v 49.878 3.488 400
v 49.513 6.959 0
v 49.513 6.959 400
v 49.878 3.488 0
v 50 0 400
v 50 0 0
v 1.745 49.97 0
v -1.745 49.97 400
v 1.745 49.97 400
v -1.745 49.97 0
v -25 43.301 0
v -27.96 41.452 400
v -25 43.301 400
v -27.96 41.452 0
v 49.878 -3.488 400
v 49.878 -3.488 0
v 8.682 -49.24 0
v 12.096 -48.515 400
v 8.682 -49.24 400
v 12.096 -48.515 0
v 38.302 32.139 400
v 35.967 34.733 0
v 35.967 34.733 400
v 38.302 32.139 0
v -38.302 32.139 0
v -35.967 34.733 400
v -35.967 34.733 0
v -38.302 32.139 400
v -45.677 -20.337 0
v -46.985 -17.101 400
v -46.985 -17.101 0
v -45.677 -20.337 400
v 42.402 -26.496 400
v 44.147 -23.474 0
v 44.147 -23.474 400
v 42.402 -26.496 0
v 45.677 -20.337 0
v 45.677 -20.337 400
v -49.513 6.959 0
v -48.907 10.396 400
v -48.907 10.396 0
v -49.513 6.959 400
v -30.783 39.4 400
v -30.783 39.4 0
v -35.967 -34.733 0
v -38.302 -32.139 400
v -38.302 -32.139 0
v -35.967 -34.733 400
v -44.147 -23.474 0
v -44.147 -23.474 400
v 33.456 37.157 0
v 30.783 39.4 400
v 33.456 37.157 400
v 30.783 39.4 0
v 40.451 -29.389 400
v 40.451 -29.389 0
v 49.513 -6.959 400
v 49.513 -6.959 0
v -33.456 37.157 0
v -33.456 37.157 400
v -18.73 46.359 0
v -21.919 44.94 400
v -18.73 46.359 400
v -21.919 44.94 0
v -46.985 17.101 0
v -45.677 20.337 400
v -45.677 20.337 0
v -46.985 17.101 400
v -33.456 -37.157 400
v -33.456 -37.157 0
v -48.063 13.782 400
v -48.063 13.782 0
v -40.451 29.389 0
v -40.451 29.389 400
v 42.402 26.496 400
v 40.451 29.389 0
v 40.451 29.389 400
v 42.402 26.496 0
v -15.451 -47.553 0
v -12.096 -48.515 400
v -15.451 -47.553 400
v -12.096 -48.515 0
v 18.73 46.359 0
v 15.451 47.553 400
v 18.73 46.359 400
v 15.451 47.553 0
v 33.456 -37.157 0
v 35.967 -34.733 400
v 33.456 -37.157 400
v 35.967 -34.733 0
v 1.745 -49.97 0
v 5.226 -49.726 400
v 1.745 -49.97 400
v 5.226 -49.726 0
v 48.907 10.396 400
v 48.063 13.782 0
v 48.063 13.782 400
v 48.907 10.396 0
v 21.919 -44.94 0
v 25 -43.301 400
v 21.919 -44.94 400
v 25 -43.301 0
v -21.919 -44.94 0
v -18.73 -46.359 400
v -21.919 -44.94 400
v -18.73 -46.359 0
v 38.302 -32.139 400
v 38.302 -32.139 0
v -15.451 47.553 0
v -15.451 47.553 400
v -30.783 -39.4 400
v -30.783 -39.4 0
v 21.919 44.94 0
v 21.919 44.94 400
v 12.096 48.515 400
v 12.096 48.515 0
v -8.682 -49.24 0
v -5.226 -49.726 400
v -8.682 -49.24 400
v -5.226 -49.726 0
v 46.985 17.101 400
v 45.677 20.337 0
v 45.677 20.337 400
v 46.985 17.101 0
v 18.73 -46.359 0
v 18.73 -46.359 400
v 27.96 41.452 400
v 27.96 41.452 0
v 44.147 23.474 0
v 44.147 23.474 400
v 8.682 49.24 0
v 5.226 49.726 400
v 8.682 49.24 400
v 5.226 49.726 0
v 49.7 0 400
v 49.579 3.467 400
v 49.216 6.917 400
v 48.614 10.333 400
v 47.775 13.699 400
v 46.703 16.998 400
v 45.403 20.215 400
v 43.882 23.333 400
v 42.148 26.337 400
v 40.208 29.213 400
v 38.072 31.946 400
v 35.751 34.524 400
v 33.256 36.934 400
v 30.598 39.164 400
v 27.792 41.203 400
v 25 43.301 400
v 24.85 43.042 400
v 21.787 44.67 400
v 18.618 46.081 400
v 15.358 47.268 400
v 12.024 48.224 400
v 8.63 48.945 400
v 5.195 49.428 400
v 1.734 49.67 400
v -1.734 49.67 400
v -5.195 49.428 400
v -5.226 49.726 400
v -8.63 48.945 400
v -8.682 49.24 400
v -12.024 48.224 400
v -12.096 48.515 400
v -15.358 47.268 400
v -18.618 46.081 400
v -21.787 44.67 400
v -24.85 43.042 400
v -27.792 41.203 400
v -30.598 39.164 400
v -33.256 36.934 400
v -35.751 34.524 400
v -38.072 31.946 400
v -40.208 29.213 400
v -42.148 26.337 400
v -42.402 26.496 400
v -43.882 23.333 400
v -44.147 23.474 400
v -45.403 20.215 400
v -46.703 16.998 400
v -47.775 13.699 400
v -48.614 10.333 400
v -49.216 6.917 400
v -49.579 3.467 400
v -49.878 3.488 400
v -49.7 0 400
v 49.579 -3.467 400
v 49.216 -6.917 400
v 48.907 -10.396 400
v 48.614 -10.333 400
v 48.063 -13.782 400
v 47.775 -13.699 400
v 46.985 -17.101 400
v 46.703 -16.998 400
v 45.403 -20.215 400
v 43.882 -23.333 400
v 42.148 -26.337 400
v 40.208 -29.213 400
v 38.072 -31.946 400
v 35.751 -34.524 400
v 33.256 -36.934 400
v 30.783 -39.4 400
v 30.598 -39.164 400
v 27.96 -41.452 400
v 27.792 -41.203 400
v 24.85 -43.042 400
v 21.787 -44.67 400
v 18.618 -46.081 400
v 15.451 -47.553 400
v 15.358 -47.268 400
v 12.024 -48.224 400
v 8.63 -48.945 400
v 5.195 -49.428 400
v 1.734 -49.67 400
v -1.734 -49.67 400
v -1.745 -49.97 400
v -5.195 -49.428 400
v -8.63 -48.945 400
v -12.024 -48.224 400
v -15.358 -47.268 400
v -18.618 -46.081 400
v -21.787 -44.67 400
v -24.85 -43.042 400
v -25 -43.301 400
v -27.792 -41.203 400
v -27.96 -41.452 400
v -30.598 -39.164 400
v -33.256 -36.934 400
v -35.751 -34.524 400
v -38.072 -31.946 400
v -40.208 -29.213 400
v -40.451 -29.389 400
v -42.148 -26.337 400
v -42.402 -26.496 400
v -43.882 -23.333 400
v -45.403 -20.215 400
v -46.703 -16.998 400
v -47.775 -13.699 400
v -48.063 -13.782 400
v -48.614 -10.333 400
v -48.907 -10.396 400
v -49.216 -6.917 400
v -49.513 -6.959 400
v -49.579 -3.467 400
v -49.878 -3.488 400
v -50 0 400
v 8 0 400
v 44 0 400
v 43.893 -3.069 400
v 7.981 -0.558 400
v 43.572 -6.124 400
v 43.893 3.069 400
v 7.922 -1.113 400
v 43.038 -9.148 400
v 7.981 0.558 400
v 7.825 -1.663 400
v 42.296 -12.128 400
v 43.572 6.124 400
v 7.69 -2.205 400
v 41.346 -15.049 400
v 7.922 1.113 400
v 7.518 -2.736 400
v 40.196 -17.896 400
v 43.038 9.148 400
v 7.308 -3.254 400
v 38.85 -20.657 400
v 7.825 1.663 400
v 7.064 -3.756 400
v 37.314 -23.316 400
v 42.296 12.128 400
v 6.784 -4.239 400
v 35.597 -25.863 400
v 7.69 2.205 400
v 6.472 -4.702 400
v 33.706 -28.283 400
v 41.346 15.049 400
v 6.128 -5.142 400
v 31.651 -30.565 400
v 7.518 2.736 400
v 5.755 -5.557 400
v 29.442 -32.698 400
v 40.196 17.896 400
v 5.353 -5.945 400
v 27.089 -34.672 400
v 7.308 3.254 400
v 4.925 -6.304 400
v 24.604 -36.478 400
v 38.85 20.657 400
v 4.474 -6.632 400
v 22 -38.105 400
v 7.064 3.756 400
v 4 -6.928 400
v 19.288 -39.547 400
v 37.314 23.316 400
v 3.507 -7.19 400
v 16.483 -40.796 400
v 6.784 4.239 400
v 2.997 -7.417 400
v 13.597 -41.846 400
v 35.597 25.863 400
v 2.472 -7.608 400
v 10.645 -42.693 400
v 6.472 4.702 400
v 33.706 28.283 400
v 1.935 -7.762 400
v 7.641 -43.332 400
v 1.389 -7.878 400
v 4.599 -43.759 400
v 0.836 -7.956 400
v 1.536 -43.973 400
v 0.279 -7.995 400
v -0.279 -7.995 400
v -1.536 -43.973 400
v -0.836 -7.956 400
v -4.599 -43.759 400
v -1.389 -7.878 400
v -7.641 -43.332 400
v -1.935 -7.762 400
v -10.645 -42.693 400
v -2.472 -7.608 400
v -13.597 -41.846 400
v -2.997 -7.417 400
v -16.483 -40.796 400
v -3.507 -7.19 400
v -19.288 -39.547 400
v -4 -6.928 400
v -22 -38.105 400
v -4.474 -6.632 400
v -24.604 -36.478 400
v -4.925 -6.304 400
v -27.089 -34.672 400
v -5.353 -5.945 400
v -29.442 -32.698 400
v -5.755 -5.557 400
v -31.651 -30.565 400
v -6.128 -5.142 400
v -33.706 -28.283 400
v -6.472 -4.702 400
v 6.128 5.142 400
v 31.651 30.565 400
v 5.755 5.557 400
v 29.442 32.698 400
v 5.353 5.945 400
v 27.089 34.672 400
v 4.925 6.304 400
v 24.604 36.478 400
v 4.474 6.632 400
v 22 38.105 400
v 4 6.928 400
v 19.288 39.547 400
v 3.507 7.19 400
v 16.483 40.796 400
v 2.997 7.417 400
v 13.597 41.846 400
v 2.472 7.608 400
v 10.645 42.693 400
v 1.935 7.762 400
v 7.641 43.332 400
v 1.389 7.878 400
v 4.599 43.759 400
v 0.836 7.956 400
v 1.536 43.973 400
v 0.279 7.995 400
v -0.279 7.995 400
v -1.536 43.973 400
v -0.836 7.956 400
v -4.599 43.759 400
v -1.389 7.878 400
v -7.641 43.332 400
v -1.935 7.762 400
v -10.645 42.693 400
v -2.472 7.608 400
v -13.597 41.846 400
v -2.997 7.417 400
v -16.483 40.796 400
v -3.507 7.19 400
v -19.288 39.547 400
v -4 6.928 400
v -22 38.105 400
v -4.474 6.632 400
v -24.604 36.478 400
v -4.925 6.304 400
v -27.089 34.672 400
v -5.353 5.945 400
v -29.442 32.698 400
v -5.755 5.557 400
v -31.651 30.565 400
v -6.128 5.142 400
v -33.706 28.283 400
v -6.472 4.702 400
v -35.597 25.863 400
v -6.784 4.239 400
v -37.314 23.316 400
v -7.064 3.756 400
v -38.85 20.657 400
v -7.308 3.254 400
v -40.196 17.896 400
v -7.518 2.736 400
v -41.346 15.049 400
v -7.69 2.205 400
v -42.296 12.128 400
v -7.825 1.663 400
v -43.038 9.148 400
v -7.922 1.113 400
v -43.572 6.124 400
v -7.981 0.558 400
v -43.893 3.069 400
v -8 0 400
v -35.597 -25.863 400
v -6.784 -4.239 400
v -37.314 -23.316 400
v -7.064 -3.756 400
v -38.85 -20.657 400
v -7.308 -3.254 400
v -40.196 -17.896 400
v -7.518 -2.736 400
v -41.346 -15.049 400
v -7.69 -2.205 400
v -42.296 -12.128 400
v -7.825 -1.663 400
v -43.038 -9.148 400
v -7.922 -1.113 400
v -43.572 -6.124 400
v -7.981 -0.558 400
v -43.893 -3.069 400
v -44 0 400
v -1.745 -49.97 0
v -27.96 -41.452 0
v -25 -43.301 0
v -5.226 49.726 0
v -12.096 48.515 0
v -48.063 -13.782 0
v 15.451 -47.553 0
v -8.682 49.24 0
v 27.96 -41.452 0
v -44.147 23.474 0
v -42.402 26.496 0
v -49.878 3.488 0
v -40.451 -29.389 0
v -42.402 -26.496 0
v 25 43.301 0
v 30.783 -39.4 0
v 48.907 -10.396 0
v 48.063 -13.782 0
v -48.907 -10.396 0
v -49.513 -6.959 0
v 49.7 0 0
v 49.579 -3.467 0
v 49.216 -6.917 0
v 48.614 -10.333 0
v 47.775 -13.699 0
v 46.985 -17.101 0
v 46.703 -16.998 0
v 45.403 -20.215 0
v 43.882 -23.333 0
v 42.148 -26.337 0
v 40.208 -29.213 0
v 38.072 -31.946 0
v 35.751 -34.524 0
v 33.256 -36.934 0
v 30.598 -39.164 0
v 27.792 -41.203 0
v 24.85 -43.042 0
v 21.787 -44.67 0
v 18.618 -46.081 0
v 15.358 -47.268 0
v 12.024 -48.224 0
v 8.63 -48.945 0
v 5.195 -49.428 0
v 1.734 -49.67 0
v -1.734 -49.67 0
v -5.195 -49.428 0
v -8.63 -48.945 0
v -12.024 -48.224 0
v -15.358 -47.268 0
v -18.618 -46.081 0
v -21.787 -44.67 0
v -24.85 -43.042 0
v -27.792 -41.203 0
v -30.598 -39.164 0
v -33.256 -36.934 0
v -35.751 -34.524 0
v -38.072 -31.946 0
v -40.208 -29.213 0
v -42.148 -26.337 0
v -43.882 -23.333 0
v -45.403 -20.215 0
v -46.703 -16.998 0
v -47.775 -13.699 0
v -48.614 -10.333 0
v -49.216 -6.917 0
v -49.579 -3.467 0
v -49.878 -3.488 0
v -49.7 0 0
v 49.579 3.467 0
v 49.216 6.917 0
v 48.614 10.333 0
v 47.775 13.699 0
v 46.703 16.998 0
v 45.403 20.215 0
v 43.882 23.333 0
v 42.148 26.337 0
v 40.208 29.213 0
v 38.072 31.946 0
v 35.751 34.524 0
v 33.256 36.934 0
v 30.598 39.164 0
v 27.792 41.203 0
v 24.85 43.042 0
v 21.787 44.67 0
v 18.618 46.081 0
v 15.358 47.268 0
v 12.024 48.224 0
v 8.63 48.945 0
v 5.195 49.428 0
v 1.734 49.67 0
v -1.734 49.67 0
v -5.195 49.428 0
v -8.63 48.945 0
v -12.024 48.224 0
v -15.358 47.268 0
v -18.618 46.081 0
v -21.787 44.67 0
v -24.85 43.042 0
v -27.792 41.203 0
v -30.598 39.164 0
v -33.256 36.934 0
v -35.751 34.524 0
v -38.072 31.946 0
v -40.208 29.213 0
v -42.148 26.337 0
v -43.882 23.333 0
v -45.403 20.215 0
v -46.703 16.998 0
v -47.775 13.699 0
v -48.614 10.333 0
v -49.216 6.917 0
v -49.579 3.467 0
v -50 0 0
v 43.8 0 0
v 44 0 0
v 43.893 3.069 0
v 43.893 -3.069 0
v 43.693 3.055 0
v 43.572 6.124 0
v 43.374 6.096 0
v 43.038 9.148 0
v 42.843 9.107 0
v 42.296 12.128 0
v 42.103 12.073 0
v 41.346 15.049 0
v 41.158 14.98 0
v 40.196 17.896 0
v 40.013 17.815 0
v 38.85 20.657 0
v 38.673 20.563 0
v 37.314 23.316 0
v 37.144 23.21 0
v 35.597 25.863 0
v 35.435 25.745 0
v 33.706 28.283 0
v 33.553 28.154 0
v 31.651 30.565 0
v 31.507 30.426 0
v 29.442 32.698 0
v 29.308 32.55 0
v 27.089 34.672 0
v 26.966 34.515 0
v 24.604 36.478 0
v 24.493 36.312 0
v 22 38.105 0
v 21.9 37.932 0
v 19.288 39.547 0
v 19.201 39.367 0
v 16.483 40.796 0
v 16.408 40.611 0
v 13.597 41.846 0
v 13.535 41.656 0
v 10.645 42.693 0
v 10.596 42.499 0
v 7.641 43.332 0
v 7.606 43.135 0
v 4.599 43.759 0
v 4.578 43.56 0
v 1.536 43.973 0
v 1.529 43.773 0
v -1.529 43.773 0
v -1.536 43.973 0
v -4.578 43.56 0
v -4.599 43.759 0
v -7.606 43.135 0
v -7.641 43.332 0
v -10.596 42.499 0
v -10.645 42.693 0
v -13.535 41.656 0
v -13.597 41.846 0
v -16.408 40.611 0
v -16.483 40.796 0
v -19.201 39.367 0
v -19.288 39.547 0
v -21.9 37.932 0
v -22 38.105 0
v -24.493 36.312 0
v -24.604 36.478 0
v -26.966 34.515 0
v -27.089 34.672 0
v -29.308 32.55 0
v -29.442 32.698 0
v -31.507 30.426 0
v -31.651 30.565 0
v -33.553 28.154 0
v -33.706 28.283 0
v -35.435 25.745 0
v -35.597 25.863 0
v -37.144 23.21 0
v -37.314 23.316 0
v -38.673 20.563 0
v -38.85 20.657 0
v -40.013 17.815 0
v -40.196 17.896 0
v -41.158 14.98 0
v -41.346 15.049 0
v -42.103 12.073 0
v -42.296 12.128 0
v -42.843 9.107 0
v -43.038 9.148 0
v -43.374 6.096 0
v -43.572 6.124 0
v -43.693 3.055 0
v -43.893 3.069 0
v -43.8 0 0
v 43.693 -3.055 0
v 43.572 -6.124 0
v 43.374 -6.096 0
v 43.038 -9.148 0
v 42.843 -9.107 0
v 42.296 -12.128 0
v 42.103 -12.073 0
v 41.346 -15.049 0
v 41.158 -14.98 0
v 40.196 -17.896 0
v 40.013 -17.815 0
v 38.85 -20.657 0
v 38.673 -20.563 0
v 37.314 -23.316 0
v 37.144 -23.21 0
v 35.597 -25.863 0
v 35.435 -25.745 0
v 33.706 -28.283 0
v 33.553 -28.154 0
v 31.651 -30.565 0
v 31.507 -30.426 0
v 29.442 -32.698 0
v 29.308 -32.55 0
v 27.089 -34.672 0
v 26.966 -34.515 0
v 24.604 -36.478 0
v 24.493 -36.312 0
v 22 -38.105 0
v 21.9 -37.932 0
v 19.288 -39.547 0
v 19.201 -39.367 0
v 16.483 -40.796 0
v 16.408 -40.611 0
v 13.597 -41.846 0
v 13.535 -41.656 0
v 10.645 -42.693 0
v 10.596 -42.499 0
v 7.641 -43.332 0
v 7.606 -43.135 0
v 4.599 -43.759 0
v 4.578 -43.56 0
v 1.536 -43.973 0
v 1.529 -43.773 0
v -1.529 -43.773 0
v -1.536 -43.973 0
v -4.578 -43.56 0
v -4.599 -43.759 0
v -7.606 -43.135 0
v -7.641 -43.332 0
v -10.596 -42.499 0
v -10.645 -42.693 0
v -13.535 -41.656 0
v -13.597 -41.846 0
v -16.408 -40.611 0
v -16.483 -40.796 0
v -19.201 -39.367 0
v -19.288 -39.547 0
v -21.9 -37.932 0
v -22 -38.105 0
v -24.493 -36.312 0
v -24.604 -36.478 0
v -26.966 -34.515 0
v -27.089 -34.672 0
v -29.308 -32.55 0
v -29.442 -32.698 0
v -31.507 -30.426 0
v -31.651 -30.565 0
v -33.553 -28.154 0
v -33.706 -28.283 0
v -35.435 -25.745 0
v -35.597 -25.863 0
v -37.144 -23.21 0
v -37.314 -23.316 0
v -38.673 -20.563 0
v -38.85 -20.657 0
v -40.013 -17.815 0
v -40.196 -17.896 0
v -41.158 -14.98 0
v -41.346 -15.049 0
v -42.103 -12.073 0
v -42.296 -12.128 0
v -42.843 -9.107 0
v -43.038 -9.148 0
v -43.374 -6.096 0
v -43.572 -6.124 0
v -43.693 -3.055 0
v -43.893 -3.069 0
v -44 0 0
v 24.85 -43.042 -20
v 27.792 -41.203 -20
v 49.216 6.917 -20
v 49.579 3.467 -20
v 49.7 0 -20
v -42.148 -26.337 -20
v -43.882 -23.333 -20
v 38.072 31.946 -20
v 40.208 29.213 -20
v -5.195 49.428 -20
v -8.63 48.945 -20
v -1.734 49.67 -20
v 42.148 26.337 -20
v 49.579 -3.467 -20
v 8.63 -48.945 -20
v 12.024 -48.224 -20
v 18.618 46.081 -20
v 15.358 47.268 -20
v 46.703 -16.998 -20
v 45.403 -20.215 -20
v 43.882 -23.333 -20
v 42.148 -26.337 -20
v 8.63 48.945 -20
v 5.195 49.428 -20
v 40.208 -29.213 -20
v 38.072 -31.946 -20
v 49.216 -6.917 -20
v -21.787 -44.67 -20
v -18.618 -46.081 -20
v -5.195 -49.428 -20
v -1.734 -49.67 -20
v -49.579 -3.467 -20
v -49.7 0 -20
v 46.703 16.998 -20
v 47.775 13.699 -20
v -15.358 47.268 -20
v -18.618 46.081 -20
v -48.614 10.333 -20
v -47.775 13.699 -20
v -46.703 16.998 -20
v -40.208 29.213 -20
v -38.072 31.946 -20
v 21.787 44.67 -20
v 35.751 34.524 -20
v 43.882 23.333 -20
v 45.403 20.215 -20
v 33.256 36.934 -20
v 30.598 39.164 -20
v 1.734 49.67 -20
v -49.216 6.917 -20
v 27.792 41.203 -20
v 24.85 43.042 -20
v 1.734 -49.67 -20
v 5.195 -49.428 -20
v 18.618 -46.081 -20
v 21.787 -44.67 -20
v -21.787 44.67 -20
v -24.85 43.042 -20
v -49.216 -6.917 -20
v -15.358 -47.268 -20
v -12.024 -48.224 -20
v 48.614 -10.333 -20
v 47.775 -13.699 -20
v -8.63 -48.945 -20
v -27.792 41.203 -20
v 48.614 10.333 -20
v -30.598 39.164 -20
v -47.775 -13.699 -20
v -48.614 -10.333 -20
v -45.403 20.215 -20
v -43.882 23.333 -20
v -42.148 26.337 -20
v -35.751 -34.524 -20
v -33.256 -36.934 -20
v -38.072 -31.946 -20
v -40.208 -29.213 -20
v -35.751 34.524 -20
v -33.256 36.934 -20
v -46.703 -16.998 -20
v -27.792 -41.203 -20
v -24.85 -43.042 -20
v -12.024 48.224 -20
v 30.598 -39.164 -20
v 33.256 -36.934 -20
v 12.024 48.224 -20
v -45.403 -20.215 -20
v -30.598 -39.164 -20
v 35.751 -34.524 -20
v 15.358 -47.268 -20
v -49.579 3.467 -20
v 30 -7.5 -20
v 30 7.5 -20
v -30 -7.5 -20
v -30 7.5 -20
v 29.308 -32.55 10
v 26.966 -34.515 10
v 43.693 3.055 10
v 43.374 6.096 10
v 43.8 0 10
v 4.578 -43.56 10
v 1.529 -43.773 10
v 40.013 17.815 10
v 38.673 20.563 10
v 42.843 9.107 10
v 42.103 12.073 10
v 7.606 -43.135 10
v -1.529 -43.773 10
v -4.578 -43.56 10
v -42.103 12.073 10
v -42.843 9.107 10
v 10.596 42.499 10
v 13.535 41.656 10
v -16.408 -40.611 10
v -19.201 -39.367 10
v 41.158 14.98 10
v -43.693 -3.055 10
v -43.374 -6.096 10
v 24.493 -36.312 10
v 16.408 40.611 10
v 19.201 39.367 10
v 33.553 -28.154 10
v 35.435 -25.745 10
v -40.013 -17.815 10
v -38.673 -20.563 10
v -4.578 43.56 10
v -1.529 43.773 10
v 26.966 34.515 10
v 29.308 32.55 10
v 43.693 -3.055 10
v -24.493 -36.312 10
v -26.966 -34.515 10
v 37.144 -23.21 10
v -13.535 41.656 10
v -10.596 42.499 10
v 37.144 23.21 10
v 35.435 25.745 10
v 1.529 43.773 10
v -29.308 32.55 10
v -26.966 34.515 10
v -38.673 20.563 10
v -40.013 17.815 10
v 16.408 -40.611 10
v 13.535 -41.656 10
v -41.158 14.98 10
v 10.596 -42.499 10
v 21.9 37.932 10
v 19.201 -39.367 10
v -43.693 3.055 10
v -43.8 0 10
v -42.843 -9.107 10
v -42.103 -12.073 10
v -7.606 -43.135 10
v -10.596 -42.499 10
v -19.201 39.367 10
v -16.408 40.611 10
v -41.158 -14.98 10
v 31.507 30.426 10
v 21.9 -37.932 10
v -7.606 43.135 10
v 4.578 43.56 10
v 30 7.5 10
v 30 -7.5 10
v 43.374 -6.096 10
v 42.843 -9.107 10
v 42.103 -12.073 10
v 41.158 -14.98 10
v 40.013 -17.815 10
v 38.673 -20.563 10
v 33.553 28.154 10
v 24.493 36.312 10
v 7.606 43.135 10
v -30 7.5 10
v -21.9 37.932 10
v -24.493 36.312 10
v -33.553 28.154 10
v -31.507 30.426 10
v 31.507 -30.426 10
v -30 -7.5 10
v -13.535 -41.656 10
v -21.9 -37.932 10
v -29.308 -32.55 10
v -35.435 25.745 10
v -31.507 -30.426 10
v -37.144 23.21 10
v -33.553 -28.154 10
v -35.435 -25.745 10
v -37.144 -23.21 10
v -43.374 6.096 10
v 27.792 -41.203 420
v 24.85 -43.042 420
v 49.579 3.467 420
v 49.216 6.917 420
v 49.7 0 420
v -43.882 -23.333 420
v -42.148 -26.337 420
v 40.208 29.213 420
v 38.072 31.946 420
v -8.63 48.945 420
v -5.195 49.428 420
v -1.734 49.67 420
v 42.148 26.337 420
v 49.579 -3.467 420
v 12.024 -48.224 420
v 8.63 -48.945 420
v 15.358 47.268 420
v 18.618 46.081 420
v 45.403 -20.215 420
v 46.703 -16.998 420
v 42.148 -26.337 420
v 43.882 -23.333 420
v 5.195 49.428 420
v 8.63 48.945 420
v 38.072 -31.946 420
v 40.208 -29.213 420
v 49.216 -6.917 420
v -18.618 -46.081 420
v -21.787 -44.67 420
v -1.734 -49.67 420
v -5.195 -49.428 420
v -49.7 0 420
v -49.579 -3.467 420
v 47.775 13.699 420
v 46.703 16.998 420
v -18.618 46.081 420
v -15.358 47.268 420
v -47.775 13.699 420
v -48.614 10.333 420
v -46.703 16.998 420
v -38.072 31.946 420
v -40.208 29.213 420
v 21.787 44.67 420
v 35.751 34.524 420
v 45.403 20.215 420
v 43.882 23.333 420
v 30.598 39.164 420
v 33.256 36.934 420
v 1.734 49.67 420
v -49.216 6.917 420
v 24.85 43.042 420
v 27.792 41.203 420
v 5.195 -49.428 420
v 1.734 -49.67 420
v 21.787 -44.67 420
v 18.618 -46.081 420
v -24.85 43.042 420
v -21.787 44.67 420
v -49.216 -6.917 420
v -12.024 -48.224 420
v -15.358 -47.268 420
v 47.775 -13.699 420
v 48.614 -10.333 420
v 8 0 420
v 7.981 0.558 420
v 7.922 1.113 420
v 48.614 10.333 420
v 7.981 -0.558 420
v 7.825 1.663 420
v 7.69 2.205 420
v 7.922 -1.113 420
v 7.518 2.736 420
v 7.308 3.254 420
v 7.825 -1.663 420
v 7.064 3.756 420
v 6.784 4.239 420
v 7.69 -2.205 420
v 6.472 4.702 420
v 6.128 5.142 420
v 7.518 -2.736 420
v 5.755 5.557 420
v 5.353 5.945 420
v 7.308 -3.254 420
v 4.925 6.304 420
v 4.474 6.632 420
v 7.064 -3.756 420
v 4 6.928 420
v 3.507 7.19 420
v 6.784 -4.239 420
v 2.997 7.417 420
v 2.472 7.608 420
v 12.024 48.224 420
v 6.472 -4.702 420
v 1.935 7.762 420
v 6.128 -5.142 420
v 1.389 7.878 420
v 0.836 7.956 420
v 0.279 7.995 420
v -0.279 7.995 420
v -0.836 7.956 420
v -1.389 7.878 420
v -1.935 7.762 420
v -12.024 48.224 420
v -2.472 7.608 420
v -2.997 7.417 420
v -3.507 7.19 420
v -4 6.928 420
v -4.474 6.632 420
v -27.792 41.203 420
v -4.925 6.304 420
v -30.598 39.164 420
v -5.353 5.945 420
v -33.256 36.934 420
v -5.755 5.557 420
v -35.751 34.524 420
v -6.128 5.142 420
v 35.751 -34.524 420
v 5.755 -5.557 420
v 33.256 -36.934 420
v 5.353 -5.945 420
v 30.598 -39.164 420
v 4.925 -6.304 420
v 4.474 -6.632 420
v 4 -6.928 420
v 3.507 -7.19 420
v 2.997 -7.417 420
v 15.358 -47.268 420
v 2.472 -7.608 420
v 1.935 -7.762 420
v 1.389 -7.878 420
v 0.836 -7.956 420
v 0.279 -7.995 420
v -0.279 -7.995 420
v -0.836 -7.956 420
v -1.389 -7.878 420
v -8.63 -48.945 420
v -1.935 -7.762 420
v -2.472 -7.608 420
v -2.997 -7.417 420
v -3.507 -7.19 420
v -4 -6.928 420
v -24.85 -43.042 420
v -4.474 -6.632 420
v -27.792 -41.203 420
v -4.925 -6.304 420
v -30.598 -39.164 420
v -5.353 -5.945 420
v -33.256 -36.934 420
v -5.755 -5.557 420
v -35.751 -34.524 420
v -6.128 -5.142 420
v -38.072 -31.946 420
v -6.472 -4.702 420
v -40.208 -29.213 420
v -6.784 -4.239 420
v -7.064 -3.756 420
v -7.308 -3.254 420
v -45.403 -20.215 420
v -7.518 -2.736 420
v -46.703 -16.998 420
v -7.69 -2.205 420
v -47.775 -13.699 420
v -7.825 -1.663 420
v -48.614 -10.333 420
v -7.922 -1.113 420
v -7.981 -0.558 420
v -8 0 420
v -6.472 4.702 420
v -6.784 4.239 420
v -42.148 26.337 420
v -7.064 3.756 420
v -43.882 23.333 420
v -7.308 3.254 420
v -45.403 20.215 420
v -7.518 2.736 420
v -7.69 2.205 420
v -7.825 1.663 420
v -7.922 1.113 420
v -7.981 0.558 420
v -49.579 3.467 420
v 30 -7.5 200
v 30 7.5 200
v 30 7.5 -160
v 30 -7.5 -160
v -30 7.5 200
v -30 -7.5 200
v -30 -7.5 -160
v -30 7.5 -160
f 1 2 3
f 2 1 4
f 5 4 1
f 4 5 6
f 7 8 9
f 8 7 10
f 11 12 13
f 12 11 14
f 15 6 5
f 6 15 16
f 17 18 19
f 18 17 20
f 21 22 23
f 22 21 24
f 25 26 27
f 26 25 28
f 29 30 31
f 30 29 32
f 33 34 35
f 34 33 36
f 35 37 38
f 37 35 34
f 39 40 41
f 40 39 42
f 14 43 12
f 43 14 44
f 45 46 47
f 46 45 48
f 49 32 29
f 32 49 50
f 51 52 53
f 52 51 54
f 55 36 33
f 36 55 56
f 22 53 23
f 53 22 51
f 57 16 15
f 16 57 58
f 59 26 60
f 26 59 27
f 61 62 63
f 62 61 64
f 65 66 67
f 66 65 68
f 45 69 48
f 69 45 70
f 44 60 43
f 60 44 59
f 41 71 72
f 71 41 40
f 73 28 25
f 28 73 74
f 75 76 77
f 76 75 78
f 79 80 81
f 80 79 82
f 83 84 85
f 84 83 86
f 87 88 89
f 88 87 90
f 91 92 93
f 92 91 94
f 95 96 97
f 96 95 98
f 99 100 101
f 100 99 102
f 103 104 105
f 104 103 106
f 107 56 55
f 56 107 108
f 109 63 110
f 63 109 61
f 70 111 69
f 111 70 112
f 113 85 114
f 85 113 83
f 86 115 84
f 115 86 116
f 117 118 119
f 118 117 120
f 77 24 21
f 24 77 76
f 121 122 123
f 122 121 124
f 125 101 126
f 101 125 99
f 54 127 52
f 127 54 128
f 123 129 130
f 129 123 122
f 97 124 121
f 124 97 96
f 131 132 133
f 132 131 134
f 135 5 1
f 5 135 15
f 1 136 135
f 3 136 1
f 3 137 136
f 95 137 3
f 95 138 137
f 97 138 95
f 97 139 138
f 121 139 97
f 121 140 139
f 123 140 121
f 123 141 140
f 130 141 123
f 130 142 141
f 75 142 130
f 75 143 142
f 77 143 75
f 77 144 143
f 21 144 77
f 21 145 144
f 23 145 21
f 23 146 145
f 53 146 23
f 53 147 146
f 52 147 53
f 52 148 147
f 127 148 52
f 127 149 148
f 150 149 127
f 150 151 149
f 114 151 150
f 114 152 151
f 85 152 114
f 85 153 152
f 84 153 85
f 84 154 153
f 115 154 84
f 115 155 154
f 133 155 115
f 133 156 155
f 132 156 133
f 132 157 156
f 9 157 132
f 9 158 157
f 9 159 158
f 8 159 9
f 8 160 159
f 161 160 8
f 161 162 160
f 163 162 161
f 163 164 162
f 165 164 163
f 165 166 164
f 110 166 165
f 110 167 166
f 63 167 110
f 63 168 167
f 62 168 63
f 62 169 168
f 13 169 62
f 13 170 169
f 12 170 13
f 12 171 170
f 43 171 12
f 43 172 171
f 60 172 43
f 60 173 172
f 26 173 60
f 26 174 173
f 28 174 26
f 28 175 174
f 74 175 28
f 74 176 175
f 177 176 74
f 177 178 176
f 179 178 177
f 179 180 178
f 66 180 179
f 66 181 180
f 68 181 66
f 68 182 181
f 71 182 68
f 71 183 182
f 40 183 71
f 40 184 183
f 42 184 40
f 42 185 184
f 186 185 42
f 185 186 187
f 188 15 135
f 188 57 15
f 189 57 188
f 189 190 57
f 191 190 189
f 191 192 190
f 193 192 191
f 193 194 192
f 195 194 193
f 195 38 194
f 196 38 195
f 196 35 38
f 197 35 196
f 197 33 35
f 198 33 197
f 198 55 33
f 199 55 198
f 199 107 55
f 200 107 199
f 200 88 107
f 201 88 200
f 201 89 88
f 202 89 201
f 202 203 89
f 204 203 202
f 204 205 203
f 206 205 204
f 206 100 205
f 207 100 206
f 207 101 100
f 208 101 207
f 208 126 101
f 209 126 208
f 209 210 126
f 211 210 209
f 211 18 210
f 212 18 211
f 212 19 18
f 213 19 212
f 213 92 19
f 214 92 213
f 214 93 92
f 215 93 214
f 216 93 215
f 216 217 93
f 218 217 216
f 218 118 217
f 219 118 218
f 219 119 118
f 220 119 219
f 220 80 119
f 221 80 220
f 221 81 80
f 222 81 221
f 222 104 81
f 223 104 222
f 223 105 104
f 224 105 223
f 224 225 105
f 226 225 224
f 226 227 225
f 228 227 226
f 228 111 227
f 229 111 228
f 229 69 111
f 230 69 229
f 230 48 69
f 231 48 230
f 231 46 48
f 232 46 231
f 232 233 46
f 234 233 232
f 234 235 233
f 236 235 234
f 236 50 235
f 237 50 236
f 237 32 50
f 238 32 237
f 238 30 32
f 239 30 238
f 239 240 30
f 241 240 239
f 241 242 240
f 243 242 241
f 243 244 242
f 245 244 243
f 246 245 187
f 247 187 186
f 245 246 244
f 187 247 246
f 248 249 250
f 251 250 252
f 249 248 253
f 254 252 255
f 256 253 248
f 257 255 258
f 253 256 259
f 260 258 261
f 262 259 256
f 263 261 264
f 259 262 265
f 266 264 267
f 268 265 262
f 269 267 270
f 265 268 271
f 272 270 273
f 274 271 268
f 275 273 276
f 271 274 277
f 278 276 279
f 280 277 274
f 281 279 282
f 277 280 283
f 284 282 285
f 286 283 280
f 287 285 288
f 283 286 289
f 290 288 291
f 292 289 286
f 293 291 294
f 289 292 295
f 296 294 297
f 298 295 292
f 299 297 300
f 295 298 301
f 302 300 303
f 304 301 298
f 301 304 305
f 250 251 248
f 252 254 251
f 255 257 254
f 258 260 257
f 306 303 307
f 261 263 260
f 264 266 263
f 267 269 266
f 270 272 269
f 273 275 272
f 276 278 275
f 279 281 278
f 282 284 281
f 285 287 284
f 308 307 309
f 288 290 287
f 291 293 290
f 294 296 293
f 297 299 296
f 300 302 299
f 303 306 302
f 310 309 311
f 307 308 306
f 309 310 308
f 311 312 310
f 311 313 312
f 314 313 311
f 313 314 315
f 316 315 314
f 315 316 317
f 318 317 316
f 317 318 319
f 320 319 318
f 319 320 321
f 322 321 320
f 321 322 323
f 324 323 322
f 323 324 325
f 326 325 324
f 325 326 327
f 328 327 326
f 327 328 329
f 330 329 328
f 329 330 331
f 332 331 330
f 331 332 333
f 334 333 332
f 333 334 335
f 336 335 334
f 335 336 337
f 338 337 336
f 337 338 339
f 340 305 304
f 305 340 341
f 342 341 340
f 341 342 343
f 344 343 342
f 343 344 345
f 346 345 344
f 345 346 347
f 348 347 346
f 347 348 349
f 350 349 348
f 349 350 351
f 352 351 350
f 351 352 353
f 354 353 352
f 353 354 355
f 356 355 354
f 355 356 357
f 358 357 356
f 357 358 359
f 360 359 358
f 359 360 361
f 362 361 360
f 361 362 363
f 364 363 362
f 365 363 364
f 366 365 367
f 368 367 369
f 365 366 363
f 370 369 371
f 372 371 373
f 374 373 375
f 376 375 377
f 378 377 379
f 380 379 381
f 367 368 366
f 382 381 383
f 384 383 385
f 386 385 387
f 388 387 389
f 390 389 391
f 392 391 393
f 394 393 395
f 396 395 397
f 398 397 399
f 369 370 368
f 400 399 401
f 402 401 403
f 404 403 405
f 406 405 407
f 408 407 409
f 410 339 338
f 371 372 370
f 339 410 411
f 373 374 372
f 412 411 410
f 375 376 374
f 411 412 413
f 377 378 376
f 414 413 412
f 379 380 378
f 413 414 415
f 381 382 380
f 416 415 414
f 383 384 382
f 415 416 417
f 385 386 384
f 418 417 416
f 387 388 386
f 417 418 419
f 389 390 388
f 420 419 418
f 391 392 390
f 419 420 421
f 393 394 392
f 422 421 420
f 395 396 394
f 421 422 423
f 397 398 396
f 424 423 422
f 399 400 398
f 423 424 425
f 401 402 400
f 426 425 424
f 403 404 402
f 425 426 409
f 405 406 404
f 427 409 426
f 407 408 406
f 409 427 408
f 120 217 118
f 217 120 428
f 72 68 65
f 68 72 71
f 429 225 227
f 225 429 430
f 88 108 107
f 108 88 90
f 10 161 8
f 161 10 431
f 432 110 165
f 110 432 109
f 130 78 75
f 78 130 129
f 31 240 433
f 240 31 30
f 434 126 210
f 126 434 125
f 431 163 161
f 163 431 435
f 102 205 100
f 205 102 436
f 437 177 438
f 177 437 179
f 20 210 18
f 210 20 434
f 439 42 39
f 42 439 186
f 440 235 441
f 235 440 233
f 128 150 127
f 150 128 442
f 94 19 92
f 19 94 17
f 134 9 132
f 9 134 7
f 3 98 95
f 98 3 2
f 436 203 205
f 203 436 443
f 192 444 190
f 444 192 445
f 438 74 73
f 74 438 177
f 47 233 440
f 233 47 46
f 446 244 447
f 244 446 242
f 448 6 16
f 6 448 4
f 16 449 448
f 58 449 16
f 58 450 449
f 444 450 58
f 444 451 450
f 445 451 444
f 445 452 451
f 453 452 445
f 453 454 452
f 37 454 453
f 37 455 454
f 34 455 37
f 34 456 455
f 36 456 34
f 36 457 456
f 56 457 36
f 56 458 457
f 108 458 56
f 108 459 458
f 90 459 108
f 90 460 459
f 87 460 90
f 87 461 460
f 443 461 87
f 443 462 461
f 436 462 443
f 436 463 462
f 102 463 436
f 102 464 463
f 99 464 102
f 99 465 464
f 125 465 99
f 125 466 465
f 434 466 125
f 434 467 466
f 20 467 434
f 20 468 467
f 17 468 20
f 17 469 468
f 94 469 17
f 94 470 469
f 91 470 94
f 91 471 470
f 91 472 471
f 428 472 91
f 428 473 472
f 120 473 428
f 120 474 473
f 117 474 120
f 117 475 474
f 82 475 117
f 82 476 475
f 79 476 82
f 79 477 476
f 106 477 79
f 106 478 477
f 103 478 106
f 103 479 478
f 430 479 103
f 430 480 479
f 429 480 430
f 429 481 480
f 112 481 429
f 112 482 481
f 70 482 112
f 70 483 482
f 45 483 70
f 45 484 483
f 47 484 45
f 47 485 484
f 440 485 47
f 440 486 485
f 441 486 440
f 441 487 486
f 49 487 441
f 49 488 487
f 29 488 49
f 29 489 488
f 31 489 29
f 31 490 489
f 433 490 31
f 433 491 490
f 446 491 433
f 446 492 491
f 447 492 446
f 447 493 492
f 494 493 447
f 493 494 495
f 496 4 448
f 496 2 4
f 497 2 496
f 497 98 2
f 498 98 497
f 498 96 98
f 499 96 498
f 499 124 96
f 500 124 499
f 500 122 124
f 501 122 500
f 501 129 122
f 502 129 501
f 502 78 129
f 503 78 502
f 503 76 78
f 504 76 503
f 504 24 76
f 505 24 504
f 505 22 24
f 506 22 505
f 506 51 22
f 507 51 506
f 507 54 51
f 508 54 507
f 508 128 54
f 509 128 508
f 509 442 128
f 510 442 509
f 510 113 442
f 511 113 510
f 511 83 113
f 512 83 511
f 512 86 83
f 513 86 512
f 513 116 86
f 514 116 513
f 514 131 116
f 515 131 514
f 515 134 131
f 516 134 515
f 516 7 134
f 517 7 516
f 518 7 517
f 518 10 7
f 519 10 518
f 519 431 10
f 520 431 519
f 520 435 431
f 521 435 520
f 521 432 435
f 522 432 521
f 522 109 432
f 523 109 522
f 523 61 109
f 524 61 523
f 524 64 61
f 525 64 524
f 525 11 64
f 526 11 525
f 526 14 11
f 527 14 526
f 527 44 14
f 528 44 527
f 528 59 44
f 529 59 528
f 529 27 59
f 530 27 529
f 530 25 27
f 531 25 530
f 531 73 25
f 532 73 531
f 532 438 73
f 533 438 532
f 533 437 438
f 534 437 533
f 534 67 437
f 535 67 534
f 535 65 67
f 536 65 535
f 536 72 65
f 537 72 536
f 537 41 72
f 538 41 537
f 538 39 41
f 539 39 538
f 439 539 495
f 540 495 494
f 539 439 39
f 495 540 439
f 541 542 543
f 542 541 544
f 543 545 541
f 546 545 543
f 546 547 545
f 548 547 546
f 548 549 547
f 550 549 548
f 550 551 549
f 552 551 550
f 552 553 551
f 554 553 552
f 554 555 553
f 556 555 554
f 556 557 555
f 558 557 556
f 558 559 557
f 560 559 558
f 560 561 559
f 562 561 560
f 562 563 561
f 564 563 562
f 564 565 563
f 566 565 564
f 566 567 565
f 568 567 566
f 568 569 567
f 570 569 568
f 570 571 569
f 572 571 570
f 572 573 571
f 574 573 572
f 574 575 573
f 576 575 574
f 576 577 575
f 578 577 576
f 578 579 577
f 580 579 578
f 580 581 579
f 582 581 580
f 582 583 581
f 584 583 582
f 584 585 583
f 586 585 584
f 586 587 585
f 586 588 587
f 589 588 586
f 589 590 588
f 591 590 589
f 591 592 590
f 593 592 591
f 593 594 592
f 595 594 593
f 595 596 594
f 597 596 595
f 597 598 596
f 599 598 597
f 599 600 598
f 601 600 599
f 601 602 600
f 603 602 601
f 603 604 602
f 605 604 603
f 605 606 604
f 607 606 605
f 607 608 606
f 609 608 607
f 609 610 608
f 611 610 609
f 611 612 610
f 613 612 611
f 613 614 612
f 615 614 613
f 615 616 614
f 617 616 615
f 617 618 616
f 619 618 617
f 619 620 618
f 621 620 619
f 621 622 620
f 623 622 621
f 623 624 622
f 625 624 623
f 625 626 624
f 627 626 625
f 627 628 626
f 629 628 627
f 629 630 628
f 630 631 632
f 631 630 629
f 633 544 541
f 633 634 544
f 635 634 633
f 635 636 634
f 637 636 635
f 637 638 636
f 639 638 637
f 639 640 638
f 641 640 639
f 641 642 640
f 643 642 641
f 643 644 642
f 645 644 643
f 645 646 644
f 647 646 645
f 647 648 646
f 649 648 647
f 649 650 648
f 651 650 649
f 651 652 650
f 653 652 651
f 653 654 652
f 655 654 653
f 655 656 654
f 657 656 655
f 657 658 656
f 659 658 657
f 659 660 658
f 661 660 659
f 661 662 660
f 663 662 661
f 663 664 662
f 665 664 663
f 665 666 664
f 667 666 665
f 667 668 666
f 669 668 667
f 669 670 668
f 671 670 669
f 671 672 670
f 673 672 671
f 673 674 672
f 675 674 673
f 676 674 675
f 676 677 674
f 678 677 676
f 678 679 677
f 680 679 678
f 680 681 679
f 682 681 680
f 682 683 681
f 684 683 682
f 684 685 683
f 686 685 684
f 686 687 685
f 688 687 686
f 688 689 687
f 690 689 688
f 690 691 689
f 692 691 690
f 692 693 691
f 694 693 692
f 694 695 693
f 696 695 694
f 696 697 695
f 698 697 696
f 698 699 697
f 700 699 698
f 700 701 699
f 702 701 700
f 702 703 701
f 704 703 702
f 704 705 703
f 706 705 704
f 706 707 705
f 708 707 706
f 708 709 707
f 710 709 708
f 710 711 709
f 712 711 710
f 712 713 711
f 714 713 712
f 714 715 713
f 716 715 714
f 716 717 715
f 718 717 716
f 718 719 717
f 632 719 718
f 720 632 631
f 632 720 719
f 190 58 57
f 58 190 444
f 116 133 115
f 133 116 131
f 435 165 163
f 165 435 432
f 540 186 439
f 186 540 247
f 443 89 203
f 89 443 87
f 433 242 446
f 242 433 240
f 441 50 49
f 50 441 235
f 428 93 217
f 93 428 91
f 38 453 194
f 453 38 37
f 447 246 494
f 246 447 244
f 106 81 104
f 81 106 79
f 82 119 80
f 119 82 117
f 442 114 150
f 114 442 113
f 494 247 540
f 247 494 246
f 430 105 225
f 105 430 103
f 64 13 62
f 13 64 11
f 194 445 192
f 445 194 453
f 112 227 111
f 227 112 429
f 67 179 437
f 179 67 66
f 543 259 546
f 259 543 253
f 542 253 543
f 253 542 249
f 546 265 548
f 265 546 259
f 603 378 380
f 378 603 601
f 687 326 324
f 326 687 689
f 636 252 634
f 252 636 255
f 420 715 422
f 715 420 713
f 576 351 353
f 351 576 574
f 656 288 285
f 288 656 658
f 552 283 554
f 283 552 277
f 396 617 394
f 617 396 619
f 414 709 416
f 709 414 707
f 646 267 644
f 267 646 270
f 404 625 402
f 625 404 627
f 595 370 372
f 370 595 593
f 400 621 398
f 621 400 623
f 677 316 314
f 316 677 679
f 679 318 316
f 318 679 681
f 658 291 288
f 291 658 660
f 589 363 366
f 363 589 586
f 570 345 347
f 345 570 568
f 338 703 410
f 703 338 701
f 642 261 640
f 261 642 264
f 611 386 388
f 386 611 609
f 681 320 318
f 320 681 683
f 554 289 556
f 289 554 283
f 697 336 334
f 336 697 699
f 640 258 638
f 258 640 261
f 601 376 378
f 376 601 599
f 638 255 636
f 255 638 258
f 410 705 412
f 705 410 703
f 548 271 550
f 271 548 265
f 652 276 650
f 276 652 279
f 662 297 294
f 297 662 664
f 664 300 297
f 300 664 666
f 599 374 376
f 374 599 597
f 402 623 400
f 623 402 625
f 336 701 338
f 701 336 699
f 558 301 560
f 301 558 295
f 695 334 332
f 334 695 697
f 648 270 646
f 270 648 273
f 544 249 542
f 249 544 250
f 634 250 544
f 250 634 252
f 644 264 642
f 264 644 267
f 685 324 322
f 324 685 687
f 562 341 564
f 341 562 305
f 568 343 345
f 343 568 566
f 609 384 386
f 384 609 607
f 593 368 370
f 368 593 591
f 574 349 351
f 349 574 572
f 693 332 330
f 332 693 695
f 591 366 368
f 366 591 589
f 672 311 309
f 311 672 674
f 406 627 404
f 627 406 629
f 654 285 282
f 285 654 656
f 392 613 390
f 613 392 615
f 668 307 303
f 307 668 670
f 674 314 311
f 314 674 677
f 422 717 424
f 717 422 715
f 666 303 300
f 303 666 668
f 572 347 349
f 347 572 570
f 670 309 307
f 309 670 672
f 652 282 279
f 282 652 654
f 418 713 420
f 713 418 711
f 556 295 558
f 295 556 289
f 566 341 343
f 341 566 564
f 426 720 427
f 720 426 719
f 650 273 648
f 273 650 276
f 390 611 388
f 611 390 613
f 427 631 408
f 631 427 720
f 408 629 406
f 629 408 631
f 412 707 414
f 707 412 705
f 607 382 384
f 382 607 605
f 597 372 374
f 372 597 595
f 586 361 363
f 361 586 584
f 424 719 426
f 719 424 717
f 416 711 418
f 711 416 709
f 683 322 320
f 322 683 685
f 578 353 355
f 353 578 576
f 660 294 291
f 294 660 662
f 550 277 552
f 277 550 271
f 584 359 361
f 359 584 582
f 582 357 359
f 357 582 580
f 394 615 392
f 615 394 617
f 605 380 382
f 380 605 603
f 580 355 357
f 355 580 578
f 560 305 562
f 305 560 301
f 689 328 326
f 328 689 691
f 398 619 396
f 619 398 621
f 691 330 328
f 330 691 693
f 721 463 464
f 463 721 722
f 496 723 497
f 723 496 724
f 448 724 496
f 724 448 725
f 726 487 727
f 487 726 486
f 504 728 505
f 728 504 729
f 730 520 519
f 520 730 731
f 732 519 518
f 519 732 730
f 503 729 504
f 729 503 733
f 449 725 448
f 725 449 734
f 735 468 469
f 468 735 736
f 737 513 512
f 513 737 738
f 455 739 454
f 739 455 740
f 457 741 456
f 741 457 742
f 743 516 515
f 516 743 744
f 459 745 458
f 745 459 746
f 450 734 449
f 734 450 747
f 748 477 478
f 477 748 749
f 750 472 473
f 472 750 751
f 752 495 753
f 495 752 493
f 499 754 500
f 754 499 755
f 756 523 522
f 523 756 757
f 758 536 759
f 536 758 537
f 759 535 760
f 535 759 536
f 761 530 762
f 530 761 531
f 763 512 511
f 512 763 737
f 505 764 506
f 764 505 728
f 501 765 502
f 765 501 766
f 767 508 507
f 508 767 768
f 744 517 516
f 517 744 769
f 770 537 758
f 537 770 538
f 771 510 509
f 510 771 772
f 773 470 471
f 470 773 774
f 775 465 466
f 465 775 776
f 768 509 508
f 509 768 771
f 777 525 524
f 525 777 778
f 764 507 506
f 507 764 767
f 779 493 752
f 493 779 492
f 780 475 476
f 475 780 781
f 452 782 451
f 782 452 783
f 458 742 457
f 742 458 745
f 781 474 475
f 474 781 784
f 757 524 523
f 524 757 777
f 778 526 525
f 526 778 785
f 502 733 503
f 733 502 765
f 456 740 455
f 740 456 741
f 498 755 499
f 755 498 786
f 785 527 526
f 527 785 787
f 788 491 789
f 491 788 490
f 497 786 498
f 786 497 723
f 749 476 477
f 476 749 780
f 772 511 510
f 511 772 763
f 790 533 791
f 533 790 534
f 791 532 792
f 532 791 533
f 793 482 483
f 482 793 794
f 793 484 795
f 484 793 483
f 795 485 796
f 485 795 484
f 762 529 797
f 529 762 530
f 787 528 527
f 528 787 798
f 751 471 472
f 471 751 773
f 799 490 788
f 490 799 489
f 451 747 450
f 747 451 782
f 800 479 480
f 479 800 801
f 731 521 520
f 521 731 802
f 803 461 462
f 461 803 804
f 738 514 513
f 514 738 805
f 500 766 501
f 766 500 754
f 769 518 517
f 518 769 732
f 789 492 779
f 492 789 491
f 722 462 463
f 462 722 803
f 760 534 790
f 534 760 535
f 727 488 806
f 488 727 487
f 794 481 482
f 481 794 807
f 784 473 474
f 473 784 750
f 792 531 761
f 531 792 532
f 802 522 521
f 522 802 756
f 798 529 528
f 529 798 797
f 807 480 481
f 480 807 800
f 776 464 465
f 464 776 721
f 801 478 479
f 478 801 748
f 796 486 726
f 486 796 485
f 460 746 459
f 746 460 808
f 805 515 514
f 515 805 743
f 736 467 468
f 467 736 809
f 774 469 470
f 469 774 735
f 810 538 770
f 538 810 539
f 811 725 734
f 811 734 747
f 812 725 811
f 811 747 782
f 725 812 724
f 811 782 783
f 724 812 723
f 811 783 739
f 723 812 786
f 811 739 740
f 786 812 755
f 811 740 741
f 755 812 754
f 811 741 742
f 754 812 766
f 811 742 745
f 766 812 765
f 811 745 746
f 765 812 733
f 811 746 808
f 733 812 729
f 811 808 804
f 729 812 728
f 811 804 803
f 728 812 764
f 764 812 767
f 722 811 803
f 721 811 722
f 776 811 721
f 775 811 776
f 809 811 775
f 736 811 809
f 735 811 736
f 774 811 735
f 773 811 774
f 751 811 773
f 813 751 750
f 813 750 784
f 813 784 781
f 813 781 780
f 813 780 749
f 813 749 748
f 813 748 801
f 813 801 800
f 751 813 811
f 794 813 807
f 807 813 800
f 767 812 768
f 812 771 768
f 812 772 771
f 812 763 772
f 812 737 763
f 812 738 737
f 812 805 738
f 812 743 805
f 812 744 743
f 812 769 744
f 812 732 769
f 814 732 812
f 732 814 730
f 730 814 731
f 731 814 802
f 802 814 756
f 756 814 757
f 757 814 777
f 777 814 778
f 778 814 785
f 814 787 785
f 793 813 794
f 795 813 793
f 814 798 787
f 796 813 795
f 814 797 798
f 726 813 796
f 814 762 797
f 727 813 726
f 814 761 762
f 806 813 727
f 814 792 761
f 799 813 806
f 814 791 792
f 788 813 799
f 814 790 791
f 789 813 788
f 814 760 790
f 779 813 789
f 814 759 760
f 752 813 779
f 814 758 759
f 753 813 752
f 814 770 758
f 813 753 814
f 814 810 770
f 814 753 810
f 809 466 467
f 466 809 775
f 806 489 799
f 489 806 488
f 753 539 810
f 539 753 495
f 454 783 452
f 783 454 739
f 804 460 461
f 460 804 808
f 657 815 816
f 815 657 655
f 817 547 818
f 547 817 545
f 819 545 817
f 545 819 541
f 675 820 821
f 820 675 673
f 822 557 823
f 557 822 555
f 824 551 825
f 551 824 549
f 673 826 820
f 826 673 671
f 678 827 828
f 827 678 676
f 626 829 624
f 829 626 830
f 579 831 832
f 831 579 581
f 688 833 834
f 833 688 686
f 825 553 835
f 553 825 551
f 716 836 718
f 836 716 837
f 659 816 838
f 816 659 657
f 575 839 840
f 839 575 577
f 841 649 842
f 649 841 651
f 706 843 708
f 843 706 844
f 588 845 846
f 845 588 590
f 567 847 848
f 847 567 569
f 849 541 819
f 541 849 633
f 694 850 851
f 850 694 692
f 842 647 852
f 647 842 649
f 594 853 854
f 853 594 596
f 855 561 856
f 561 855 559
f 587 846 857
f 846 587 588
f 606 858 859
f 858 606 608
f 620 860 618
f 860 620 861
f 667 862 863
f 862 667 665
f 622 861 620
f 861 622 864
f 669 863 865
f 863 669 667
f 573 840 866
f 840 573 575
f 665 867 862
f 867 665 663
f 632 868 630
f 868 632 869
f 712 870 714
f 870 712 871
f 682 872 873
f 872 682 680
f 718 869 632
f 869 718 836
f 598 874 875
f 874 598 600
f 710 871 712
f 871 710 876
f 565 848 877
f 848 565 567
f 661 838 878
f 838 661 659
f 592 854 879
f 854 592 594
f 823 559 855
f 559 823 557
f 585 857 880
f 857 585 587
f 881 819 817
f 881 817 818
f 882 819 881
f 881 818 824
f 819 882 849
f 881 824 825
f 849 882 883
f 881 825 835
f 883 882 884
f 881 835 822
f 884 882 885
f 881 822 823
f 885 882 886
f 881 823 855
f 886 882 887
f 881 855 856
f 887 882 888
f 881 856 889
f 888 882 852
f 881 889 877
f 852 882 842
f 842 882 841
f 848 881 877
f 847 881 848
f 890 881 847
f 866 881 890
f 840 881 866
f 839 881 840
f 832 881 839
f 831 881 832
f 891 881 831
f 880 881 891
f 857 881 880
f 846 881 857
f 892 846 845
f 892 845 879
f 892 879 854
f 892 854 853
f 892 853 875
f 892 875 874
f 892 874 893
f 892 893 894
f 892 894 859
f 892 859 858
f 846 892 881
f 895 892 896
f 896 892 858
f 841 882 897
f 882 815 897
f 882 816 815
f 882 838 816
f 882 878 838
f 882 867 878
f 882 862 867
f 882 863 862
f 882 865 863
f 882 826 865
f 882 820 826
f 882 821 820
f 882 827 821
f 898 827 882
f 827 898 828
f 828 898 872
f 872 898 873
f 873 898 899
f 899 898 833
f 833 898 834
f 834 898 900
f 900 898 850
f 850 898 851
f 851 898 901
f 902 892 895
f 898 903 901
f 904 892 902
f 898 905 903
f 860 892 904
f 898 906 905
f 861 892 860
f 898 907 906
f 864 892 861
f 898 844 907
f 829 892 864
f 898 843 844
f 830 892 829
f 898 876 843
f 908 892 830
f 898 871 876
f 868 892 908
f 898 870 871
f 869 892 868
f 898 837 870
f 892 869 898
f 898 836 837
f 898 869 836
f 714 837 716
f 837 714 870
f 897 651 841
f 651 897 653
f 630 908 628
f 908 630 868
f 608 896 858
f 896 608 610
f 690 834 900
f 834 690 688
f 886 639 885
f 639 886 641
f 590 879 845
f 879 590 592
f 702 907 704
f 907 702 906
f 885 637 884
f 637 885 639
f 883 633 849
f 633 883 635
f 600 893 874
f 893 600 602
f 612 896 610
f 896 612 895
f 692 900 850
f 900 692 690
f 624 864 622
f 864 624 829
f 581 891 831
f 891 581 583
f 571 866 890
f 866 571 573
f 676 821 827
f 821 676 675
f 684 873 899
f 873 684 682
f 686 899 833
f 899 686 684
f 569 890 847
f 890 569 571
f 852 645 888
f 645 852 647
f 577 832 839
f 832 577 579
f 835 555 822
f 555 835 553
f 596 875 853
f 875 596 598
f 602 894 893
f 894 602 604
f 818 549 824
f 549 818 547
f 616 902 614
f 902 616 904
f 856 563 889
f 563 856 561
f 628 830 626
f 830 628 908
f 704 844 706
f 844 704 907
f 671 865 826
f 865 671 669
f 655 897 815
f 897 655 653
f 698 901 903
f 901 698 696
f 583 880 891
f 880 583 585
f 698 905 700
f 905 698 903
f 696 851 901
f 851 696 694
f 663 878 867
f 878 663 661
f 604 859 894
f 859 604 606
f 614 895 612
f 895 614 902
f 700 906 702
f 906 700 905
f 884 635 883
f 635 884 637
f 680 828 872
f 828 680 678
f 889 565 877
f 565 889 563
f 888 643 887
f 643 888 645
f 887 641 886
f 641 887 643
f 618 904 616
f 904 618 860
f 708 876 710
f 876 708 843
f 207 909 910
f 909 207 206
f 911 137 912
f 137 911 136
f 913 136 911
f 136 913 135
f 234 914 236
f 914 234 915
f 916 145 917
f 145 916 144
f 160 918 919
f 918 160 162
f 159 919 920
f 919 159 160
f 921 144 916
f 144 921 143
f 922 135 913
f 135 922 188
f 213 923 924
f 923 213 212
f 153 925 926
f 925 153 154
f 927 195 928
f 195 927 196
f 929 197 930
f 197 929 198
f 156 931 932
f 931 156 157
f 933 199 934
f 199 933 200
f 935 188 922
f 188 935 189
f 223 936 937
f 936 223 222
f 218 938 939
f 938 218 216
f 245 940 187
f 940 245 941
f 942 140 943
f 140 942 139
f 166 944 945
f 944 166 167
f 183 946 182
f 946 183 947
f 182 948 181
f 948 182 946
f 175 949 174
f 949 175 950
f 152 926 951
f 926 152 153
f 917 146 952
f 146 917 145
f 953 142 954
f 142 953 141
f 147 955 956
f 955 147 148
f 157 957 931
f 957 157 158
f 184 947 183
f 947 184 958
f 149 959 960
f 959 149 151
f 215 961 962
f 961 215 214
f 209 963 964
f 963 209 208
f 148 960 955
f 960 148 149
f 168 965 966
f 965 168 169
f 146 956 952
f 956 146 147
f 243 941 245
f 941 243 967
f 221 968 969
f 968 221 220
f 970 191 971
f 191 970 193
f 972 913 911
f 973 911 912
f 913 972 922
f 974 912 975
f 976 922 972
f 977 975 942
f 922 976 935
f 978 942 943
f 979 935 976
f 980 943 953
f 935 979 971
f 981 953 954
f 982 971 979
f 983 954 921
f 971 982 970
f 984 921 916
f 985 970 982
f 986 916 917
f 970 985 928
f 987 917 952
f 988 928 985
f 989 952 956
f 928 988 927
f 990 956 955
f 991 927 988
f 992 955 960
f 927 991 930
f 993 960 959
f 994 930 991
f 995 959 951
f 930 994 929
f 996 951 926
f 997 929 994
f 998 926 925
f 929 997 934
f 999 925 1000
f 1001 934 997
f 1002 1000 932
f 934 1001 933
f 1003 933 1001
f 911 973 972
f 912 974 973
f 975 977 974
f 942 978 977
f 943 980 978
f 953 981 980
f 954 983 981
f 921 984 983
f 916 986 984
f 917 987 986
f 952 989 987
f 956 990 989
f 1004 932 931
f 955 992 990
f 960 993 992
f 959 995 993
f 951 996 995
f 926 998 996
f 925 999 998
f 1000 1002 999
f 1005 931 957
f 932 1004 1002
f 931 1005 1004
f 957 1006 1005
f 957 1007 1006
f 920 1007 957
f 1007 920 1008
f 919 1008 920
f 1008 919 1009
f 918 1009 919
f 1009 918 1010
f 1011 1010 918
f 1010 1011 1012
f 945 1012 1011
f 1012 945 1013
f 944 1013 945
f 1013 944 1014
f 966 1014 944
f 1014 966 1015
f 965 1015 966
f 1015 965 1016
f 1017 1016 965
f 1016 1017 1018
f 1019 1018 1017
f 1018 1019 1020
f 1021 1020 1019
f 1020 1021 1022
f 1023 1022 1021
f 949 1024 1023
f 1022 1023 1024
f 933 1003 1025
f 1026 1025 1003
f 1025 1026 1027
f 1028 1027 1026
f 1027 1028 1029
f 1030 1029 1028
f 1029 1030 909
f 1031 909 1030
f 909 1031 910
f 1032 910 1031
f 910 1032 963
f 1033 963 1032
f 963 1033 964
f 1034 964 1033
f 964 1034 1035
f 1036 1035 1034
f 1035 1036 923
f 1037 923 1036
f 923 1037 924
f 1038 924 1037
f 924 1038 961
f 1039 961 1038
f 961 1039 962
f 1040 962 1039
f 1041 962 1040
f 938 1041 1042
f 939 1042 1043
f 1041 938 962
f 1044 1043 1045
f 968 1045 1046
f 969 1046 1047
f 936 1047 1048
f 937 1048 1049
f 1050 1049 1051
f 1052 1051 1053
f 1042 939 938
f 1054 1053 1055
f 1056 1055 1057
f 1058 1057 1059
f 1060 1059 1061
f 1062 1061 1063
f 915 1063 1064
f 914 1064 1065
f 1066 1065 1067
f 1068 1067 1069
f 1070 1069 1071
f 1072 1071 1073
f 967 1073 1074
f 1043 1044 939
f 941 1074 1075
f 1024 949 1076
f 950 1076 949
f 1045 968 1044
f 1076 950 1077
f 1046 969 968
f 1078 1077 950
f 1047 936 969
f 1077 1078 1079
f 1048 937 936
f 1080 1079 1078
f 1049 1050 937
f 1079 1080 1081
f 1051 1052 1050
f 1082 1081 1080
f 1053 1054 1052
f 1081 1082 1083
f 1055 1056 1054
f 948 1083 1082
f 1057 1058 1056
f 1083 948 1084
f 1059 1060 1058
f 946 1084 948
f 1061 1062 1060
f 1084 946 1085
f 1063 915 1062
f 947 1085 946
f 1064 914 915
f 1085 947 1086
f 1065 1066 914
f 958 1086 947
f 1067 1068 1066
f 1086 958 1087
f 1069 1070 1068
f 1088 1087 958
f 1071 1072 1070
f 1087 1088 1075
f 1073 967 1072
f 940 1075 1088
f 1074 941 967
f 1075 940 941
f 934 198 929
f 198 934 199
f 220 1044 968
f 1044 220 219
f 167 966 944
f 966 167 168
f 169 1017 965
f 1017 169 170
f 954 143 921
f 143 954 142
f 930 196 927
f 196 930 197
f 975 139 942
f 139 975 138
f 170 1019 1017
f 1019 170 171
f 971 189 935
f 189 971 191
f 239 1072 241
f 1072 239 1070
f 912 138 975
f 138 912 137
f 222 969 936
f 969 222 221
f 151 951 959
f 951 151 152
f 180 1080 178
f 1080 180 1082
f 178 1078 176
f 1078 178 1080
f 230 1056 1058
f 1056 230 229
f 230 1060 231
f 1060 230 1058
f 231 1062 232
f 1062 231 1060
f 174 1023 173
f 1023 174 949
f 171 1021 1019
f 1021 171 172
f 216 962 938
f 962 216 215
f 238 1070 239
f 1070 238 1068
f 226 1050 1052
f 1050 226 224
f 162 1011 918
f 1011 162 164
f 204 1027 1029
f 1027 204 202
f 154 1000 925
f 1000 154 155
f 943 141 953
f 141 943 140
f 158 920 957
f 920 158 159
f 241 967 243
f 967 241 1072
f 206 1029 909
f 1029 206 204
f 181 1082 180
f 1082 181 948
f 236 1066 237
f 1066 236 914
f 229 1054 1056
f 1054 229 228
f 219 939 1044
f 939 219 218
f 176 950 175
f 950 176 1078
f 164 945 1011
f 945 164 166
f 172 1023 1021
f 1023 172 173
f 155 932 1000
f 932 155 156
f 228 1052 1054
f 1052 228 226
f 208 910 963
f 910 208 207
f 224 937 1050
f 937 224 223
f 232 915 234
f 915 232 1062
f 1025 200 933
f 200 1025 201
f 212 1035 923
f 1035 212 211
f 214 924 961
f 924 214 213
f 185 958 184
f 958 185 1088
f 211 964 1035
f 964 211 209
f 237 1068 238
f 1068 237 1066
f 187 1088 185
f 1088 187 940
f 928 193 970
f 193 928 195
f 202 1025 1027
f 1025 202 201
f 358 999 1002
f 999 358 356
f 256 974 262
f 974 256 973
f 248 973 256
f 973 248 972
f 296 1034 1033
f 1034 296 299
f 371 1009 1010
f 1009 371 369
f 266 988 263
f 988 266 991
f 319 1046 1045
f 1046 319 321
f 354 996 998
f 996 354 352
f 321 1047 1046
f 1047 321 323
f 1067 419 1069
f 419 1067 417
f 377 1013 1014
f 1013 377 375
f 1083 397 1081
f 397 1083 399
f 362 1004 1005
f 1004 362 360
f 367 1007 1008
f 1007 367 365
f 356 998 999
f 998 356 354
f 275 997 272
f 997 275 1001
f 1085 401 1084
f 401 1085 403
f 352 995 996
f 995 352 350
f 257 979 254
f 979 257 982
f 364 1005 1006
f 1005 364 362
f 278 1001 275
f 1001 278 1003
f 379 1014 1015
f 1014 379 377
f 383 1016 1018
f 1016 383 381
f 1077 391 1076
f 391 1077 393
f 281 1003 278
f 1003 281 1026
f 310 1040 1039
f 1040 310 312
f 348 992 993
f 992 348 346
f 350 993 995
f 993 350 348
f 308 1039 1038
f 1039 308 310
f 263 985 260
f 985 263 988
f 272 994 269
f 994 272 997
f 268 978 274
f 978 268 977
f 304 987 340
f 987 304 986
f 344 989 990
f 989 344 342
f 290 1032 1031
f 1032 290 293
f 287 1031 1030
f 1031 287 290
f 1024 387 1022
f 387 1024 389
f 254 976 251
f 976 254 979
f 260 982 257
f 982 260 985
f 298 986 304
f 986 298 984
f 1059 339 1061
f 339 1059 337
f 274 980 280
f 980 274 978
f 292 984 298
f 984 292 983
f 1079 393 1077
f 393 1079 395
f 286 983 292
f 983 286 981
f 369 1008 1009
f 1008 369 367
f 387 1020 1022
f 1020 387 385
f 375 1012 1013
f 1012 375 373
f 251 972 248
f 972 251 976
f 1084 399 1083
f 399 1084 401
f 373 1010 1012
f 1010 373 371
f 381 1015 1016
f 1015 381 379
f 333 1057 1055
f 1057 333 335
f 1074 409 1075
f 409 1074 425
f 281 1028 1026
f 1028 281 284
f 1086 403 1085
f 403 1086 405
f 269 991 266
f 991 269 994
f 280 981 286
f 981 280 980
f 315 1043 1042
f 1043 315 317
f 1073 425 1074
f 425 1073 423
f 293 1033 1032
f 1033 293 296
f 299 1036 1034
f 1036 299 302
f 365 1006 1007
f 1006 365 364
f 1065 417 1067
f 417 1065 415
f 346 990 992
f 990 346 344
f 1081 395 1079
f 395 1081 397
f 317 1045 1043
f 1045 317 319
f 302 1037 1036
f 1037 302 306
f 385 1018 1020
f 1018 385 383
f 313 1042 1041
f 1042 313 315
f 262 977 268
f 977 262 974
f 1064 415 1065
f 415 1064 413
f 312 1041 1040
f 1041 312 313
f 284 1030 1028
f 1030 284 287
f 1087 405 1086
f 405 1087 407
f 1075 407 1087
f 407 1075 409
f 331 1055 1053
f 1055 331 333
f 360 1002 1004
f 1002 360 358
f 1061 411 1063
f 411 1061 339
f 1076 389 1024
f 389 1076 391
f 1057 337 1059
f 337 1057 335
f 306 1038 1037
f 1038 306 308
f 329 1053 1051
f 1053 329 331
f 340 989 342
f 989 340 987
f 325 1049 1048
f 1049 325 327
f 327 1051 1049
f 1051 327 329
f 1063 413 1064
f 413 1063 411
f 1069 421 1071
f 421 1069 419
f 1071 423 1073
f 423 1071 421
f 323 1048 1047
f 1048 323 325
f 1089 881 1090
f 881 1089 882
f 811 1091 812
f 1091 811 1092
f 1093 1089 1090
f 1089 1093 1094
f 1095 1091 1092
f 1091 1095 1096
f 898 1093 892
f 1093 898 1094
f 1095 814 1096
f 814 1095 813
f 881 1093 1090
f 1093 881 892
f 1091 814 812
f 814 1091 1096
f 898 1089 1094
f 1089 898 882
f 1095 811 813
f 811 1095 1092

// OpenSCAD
// ============================================================================
// DiveGuard heavy-class ROV - rov-platform/HLD.md
// 04_Auxiliary_Sensor_Tubes_Top - hydrophone preamp / DiveGuard acoustic front-end housing
//
// Lifted from the design dialogue originally pasted into BACKLOG.md on main
// (2026-08 batch), preserved verbatim as authored there.
//
// Update 2026-08-08: OpenSCAD IS available in this sandbox (installed via apt
// for this verification pass - previously assumed unavailable; that
// assumption was wrong, corrected repo-wide, see BACKLOG.md). This file has
// been rendered (`openscad -o out.stl this.scad`) and confirmed a valid
// 2-manifold solid ("Simple: yes" in the render log) - real geometric
// validity, not just a paren-balance check. STEP export and an independent
// engineer re-check of dimension/tolerance claims before any
// part is fabricated from it. Houses the analog front end feeding diveguard/hydrophone_module's DSP core.
// ============================================================================

// ==========================================
// DIVEGUARD: Auxiliary Sensor Tubes Top (04)
// Material: Anodized Aluminum (Blue), Ø100x400mm
// Purpose: Hydrophone & Telemetry Housing
// ==========================================

$fn = 90;

module auxiliary_sensor_tube() {
    // 1. Основной цилиндрический корпус вспомогательного модуля
    color("RoyalBlue")
    difference() {
        cylinder(h = 400, r = 50, center = false);
        translate([0, 0, -1])
            cylinder(h = 402, r = 44, center = false); // Стенка 6 мм
    }

    // 2. Передняя герметичная крышка с посадочным фланцем
    color("Silver")
    translate([0, 0, -20]) {
        cylinder(h = 20, r = 49.7, center = false);
        translate([0, 0, 20])
            cylinder(h = 10, r = 43.8, center = false);
    }

    // 3. Задняя крышка с гермовводами для акустических датчиков
    color("Silver")
    translate([0, 0, 400]) {
        difference() {
            cylinder(h = 20, r = 49.7, center = false);
            // Центральный порт под гидрофонный кабель (например, Mogami / SubConn)[cite: 5]
            translate([0, 0, -1])
                cylinder(h = 25, r = 8);
        }
    }

    // 4. Внутренняя монтажная плата под малошумящий буфер (OPA1642)[cite: 5]
    color("DarkSlateGray")
    translate([0, 0, 20])
        cube([60, 15, 360], center = true);
}

auxiliary_sensor_tube();
